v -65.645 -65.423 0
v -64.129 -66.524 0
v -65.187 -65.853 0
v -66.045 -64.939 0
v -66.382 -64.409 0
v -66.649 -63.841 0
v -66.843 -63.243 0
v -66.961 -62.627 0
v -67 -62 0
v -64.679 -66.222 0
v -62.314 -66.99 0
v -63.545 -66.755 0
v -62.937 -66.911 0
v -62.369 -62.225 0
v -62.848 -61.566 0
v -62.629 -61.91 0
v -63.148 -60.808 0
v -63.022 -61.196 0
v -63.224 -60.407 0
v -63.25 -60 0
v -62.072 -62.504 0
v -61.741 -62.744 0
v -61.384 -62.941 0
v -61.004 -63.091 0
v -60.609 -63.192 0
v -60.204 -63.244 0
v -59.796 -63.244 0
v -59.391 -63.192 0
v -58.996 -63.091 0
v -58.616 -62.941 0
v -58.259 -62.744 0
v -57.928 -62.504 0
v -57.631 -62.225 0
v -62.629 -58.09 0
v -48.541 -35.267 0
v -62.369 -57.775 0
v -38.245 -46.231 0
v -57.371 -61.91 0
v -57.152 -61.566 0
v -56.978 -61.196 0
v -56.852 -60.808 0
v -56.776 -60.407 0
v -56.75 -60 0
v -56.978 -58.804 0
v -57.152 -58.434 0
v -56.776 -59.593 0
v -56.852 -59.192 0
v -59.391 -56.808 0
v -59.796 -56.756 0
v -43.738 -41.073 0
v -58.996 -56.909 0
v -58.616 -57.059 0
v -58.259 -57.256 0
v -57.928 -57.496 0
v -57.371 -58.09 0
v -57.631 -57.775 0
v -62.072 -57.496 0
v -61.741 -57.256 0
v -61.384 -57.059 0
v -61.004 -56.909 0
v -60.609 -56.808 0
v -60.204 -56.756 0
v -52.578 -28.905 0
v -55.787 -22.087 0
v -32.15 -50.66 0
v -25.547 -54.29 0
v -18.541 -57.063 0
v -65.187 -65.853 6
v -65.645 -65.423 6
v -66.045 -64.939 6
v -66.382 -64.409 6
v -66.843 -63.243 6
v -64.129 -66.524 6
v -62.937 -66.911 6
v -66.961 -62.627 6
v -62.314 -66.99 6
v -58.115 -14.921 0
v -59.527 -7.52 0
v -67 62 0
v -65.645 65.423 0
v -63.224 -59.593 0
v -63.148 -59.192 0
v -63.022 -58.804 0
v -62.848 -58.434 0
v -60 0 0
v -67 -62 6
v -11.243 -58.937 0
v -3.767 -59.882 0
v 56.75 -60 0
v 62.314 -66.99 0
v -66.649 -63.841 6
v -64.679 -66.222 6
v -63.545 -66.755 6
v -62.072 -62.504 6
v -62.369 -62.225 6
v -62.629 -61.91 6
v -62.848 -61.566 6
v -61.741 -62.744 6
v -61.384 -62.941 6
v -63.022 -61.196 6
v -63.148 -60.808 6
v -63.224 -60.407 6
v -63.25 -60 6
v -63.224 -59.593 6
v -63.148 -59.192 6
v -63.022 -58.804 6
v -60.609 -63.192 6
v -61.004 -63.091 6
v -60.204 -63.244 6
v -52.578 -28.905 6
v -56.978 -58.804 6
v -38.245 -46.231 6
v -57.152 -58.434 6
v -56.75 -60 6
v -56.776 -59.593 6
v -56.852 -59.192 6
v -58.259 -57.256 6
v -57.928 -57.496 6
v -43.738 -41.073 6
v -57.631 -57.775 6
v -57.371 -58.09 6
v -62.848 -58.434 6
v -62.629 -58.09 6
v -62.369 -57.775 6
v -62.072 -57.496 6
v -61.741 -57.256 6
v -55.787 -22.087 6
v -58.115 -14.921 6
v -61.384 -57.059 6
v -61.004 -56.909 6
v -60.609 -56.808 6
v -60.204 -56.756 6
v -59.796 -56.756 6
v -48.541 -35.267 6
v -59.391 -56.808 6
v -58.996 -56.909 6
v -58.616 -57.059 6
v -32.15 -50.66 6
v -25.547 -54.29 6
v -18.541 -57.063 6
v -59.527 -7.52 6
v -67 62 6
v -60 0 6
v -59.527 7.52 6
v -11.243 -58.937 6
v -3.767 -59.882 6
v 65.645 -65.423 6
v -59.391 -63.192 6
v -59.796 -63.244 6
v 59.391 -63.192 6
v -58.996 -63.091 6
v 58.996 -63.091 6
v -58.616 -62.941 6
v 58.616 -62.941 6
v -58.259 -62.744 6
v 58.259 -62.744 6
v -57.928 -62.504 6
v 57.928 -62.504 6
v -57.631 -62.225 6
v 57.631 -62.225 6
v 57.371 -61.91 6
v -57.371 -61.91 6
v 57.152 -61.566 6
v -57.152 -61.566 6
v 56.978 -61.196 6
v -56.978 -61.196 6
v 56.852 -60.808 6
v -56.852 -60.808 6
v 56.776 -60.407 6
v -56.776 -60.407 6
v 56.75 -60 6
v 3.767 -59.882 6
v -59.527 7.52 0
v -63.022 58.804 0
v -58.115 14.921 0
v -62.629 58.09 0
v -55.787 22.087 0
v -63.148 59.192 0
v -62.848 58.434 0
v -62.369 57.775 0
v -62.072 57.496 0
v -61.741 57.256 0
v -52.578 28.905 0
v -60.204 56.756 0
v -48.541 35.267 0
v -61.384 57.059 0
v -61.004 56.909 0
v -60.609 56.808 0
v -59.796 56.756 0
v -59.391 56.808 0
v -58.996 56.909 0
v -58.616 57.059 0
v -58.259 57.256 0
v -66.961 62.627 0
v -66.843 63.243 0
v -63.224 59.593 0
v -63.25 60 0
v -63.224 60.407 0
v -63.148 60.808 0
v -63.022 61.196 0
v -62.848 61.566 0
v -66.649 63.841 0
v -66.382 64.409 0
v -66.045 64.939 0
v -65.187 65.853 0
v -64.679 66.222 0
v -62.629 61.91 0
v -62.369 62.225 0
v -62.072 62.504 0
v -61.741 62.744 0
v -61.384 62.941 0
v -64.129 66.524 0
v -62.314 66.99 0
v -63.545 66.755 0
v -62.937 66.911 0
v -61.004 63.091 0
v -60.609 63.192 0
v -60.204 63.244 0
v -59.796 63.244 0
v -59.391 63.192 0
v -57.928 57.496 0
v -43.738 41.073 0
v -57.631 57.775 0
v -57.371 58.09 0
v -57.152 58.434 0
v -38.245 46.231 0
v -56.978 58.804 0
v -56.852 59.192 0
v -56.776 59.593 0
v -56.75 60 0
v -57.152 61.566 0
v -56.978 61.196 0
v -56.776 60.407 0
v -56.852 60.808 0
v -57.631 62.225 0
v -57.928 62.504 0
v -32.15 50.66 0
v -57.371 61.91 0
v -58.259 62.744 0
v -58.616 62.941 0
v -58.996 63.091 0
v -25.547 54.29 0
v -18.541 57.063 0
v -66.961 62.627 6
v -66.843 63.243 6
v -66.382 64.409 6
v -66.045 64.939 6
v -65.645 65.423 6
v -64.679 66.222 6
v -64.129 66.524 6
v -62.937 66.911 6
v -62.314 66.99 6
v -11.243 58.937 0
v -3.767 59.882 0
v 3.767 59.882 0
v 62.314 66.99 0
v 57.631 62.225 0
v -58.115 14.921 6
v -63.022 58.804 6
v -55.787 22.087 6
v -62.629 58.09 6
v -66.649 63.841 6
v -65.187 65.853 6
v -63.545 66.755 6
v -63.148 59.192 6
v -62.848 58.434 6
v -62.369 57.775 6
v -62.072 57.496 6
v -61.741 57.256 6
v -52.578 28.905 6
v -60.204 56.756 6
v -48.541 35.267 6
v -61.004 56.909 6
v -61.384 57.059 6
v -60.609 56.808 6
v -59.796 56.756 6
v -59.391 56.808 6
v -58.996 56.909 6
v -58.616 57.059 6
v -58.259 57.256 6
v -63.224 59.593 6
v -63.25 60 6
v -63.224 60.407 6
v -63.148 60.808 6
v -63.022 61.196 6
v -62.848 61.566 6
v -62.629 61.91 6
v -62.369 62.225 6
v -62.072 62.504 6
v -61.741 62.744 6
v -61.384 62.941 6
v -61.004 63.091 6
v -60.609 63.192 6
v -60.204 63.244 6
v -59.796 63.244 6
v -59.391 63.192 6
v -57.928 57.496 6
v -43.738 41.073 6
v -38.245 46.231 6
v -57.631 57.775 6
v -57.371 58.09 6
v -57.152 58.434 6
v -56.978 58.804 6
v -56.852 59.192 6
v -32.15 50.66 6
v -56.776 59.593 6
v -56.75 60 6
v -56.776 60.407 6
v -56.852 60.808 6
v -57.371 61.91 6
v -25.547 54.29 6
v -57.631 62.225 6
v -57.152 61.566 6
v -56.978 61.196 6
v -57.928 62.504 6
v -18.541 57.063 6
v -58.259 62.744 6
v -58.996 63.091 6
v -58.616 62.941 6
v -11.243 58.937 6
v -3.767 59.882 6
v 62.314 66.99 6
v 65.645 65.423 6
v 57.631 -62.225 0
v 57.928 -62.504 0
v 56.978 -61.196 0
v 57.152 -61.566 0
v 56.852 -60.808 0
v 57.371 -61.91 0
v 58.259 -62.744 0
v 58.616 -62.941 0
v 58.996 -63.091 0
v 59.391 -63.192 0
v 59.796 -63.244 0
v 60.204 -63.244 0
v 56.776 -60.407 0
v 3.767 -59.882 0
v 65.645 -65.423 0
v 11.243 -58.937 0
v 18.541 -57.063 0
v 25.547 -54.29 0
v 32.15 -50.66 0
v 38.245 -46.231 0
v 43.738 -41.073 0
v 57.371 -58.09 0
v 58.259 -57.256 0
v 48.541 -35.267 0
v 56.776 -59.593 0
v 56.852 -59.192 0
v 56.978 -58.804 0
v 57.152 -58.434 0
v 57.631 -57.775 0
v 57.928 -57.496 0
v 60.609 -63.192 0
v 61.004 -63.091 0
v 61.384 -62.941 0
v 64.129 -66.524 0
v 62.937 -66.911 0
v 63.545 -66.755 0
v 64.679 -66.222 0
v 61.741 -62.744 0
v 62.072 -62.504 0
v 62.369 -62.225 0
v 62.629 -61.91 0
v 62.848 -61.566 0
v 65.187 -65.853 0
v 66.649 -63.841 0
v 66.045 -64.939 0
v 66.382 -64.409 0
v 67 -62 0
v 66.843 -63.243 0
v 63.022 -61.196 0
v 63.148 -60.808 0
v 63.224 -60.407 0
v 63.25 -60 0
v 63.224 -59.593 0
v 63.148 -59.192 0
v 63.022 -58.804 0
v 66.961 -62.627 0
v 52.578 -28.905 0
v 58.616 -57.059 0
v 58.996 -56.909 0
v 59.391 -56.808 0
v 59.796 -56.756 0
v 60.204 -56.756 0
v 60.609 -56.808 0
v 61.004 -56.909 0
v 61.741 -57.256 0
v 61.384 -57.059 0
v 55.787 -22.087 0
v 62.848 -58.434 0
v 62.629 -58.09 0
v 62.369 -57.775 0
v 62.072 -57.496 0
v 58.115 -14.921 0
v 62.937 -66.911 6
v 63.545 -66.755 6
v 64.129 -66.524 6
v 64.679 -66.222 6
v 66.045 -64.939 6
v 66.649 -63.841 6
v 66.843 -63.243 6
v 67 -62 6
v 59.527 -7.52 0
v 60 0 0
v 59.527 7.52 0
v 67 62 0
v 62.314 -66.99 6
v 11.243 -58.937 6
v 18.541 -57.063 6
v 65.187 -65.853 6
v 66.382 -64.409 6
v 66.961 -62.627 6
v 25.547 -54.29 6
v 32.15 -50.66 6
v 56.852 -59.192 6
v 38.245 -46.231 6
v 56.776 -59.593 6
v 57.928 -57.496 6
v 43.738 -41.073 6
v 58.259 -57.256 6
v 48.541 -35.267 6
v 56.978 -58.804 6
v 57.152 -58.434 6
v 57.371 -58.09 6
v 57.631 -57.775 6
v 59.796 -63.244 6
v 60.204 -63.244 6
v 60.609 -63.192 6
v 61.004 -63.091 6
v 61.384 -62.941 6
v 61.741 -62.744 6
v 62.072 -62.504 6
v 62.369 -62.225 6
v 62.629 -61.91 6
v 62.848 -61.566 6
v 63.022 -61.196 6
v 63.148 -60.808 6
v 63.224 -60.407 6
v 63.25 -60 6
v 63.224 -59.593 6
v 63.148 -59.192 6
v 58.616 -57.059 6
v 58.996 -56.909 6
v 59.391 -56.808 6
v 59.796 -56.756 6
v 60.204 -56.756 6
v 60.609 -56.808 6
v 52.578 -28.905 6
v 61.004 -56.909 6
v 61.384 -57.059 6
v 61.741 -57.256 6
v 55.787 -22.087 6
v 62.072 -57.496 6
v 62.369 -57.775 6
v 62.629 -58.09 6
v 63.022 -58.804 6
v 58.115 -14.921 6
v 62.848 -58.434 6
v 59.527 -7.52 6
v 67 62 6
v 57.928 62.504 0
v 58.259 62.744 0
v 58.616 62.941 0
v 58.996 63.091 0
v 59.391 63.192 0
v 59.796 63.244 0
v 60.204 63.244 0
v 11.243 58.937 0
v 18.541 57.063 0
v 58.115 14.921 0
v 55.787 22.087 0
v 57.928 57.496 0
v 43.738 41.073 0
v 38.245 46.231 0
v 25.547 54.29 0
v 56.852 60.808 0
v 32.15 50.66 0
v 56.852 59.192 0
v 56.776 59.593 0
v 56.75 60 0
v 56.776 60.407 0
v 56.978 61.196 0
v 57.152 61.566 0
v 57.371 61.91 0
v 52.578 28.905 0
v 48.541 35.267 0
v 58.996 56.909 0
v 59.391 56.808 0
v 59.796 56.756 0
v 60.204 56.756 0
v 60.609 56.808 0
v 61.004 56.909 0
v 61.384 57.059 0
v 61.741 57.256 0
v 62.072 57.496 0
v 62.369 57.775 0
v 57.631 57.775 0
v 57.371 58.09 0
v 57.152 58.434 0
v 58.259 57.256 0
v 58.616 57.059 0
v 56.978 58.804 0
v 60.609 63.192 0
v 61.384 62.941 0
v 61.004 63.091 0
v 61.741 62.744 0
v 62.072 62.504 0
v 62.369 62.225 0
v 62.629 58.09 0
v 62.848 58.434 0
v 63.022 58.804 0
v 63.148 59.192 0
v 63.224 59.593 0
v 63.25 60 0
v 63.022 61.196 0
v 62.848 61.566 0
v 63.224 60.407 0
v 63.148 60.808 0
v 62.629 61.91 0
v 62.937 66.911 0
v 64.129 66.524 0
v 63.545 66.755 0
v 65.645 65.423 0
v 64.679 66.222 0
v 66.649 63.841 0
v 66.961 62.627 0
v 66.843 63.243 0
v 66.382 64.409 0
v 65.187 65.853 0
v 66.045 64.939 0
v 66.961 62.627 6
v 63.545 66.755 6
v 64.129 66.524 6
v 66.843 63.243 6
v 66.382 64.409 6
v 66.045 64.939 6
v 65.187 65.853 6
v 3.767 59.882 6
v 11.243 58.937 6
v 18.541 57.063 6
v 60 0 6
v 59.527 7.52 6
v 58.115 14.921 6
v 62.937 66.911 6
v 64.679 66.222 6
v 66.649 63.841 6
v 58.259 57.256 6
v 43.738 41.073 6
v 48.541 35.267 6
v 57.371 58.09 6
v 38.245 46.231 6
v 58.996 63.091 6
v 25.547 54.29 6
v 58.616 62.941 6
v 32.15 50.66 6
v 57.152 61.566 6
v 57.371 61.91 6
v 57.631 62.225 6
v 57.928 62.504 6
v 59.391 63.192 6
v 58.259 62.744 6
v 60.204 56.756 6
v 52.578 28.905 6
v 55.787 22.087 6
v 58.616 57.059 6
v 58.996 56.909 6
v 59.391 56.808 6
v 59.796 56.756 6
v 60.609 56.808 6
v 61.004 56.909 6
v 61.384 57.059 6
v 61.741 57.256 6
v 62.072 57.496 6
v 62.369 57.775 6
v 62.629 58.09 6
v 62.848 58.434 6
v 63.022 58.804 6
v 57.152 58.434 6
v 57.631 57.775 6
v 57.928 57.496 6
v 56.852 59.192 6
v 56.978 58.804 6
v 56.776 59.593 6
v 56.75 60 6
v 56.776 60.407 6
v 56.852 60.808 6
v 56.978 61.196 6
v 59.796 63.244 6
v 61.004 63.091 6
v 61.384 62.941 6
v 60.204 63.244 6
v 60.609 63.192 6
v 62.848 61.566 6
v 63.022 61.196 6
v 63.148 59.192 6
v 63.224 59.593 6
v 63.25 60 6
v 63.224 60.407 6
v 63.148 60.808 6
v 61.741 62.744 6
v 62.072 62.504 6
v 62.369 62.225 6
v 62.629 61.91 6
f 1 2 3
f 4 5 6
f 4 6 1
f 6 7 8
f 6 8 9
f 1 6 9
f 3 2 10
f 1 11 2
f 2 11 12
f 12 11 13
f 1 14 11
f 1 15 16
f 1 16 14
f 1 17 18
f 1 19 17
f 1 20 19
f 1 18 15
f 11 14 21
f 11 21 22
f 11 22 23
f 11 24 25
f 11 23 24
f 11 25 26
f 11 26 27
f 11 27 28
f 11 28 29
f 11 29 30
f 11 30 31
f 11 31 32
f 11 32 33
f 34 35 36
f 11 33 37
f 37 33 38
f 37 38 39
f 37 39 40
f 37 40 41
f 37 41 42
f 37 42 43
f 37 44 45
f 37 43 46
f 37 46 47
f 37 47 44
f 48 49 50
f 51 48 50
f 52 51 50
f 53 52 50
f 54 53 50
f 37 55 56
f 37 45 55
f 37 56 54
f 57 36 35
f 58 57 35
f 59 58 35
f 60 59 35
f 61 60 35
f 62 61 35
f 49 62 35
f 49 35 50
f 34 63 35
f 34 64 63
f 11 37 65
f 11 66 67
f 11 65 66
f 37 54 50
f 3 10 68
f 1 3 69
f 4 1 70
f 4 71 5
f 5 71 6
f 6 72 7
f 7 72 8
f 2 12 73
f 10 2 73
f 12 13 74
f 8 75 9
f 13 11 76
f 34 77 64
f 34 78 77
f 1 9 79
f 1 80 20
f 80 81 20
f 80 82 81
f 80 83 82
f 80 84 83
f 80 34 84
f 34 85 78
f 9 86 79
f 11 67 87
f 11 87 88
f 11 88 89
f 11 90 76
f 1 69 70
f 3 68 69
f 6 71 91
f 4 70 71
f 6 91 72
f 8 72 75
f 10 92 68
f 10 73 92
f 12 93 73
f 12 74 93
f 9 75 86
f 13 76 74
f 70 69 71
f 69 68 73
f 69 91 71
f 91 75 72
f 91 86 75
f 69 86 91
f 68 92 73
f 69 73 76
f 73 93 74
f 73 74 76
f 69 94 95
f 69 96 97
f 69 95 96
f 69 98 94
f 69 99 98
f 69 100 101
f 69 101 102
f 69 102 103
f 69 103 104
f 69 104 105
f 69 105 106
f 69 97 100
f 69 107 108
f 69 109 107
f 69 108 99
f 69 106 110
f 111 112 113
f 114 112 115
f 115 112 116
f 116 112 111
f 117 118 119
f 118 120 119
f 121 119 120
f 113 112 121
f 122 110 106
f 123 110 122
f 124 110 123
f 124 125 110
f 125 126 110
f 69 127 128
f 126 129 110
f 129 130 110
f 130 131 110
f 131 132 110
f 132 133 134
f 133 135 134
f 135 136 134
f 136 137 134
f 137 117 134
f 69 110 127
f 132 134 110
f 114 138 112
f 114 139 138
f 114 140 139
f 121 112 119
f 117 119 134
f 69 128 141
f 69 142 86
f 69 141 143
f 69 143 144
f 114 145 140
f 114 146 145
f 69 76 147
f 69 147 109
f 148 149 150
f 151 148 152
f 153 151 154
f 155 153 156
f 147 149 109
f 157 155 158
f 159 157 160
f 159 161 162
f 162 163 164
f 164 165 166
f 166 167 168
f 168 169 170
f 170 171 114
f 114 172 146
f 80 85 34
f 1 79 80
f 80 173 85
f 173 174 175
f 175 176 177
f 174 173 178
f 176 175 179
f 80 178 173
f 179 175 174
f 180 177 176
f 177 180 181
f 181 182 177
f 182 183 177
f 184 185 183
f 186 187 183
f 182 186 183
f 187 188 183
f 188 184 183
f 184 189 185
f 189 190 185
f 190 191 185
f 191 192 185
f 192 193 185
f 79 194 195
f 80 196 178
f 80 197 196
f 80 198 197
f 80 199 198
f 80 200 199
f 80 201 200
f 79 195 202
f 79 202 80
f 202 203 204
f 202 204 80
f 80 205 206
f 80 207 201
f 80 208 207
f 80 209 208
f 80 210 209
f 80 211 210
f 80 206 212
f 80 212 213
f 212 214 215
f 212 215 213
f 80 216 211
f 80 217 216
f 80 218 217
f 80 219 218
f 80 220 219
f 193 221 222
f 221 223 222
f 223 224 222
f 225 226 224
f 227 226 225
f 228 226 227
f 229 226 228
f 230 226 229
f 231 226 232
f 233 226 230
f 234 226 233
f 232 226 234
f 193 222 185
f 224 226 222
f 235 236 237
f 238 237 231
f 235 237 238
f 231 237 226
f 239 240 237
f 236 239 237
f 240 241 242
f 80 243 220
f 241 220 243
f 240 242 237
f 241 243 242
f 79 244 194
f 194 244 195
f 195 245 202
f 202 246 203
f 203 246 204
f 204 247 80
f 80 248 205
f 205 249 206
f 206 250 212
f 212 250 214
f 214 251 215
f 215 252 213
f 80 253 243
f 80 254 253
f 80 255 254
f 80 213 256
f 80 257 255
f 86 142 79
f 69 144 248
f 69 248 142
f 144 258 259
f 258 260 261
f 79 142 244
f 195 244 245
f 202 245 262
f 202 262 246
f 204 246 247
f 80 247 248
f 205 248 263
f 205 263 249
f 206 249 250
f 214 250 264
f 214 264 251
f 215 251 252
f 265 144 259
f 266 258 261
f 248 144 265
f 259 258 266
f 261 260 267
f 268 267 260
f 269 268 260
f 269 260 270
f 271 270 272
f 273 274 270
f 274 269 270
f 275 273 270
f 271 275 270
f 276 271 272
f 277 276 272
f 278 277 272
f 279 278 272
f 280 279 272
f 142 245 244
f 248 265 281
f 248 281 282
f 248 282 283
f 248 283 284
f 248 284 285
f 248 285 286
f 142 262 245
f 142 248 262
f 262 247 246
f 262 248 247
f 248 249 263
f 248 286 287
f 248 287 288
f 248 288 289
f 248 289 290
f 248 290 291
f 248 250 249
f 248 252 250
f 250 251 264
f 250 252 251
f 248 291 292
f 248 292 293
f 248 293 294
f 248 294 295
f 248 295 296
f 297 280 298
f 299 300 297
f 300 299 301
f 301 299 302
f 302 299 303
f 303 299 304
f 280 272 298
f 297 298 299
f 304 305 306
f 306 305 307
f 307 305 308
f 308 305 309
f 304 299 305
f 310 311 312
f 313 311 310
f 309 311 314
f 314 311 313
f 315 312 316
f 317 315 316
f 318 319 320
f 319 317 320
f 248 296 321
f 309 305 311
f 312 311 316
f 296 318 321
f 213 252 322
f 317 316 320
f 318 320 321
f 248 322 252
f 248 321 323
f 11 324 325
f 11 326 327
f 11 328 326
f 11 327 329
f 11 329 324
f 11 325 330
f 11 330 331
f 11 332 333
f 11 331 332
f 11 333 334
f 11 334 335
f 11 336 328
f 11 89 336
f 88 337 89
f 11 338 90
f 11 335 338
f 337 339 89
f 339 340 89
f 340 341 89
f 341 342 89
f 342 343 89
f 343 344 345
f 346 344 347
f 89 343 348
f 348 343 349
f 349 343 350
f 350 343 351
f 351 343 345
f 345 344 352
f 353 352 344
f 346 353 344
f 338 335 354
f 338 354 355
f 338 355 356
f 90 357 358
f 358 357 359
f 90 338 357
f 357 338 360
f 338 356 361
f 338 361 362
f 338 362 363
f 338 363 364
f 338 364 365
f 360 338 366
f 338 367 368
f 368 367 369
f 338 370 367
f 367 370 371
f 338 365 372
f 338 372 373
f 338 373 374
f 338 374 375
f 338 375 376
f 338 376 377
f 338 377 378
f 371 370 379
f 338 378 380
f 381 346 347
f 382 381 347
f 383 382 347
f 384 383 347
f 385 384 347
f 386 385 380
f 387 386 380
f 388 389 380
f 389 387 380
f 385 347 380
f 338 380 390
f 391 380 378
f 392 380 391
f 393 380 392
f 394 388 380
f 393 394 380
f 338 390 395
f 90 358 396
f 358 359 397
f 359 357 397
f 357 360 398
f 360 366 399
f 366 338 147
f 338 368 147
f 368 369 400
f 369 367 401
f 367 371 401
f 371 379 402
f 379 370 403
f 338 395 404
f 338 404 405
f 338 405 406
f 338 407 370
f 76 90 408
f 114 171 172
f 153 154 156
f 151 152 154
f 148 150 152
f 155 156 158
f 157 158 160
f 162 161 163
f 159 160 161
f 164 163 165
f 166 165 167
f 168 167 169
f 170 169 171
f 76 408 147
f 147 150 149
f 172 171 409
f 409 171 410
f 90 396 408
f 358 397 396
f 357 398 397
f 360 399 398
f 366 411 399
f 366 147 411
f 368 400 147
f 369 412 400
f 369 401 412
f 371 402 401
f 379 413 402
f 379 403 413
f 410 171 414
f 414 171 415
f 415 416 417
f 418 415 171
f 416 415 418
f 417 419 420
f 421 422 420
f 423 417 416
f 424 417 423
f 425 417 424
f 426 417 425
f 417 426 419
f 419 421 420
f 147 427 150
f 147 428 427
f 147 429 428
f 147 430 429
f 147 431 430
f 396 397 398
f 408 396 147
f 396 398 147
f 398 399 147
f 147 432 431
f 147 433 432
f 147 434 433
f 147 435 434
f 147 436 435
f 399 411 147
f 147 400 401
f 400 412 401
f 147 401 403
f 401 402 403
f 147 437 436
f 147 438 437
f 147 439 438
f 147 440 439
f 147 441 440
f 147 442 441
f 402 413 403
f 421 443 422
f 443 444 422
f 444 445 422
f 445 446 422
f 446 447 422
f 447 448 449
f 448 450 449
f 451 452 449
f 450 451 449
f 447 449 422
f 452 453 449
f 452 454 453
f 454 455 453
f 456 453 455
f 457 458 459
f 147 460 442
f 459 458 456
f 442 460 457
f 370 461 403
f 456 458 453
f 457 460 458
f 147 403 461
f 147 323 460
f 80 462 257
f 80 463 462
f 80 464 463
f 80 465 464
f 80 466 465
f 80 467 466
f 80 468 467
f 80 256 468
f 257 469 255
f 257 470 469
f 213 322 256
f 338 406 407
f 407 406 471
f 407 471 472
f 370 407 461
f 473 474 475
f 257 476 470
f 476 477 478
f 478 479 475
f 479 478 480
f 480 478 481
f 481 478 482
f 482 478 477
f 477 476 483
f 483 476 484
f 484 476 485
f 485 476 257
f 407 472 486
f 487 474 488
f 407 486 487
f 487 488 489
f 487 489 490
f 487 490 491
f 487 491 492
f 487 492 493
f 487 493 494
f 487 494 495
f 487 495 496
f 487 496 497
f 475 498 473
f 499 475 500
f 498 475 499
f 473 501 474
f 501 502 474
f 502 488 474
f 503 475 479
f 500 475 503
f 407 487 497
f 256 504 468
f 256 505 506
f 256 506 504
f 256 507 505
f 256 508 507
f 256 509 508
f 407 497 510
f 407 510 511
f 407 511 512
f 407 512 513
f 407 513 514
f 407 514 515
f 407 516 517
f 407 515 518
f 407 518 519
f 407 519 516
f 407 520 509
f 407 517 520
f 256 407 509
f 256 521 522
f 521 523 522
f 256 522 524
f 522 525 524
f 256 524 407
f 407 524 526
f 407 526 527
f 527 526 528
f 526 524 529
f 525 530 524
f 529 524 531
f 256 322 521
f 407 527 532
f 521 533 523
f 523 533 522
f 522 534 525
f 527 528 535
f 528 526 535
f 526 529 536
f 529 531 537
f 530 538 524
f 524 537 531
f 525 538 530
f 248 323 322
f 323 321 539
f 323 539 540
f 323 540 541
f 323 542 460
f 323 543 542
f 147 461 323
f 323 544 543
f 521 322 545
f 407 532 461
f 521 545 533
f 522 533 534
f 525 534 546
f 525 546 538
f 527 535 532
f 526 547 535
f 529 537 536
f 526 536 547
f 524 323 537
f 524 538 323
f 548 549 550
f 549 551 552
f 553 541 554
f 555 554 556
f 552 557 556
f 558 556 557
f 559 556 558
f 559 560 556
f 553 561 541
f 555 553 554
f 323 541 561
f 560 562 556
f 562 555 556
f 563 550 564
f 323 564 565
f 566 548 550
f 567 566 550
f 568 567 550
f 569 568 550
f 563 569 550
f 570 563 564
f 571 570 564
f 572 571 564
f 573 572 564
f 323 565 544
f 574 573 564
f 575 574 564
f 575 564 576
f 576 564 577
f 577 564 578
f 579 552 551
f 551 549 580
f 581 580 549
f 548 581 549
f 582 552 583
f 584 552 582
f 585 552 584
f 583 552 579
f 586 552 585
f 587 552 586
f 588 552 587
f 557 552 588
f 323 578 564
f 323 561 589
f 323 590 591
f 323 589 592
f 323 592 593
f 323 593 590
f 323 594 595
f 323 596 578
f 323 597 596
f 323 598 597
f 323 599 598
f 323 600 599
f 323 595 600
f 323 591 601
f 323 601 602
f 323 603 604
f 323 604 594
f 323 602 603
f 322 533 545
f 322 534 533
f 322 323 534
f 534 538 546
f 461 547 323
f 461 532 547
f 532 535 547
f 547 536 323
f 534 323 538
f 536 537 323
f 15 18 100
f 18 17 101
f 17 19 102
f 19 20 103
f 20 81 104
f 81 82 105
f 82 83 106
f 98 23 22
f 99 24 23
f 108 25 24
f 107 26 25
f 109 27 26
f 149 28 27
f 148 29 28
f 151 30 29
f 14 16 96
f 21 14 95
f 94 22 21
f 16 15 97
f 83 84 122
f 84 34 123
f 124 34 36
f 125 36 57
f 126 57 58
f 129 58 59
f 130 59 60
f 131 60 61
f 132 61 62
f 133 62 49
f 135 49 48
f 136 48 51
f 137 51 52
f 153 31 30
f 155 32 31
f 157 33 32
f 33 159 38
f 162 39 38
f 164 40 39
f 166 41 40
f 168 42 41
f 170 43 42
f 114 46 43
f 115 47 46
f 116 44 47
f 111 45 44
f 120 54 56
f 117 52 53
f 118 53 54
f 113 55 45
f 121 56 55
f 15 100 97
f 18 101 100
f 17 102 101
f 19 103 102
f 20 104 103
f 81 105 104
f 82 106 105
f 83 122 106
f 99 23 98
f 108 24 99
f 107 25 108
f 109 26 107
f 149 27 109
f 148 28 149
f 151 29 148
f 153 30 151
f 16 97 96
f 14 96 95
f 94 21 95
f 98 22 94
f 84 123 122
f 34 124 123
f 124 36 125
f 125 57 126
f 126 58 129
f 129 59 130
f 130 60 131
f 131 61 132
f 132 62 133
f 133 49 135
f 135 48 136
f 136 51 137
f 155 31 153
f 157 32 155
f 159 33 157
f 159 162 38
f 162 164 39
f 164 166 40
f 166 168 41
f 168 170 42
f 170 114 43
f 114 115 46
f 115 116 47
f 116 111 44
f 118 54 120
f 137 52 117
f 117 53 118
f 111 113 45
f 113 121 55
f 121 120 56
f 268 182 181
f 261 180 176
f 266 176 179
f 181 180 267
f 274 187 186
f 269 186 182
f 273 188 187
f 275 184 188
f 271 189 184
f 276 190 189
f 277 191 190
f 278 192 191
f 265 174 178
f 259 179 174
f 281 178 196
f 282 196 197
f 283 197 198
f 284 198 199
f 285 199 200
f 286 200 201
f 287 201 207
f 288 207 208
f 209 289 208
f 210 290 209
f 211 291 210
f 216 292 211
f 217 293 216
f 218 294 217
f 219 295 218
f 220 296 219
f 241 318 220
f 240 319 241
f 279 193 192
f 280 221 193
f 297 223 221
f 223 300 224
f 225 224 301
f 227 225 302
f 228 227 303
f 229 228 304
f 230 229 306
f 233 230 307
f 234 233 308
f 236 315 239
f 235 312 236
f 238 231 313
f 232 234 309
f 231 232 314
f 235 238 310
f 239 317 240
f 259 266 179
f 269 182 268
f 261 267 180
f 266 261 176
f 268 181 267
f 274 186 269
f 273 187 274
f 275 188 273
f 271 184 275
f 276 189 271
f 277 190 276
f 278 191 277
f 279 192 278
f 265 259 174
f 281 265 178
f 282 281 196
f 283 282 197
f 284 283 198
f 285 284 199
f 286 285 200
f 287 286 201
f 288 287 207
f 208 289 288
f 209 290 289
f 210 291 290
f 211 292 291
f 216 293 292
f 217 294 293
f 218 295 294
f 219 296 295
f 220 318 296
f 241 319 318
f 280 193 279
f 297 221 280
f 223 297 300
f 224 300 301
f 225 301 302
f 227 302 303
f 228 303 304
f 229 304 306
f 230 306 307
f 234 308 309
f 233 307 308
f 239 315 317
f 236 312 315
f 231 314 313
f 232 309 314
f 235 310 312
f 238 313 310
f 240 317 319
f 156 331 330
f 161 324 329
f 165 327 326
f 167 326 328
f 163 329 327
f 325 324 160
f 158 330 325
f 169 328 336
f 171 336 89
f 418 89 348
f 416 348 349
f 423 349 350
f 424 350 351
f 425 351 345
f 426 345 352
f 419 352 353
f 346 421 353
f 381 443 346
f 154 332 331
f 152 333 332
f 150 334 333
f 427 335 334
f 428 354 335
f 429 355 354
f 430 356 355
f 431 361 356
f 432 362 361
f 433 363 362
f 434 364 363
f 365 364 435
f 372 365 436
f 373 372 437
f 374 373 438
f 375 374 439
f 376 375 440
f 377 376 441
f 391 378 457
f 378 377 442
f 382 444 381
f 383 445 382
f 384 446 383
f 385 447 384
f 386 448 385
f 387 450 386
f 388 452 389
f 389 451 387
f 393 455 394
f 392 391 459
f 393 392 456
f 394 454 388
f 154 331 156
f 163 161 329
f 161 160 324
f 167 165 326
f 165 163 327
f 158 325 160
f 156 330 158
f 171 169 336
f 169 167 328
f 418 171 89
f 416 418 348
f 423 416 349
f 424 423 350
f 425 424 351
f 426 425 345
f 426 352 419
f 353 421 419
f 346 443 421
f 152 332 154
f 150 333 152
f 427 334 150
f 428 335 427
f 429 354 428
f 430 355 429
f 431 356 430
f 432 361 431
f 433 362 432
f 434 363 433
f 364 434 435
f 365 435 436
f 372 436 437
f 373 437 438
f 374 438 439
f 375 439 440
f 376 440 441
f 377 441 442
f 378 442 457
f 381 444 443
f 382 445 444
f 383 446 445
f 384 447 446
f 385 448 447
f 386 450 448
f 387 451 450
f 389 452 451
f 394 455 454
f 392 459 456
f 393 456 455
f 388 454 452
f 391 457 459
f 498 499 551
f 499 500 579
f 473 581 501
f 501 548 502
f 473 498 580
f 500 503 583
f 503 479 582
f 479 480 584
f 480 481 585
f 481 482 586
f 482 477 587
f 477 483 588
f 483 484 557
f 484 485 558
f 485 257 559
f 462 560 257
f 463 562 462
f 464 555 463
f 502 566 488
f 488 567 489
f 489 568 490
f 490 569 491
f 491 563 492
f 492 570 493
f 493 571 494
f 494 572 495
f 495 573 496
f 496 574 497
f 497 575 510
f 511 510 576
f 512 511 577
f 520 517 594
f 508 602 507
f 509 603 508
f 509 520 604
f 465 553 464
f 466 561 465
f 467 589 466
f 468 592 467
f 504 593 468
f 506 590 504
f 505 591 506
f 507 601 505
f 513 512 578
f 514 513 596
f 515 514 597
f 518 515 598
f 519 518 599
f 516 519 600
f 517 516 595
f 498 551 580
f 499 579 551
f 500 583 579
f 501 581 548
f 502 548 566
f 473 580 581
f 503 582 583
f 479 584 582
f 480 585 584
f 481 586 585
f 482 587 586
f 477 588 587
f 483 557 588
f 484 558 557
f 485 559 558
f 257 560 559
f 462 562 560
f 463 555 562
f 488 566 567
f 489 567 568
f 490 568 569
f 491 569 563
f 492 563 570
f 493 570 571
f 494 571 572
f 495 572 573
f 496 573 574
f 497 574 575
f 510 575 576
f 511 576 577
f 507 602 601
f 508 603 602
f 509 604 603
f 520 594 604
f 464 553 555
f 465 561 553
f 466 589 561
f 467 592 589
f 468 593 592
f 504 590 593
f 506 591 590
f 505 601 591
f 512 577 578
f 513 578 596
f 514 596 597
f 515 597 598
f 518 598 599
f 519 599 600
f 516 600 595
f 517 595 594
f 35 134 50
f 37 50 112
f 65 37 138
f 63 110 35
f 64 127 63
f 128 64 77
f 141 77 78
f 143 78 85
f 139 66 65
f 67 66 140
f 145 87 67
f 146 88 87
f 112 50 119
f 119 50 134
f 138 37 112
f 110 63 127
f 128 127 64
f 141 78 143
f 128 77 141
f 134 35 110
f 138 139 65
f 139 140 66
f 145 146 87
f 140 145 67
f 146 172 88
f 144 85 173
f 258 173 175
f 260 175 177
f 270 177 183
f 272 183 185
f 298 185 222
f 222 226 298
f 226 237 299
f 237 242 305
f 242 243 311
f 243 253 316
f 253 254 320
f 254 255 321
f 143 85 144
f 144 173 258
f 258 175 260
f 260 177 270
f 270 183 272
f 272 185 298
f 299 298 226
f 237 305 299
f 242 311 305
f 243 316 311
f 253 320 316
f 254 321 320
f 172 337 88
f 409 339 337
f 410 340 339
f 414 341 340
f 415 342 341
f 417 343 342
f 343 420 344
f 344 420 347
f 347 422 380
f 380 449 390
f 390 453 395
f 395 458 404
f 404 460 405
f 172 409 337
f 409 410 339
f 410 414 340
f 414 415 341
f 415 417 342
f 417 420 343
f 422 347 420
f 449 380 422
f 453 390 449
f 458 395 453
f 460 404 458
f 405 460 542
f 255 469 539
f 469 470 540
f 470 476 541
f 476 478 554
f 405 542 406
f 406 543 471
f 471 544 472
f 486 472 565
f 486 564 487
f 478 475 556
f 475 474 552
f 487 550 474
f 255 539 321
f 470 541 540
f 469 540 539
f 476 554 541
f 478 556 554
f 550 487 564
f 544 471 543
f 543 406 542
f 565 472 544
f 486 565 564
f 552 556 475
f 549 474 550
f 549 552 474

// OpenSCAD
$fn = 50;

difference() {
	union() {
		hull() {
			translate(v = [-62.0, 62.0, 0]) {
				cylinder(h = 6, r = 5);
			}
			translate(v = [62.0, 62.0, 0]) {
				cylinder(h = 6, r = 5);
			}
			translate(v = [-62.0, -62.0, 0]) {
				cylinder(h = 6, r = 5);
			}
			translate(v = [62.0, -62.0, 0]) {
				cylinder(h = 6, r = 5);
			}
		}
	}
	union() {
		translate(v = [-60.0, -60.0, -100.0]) {
			cylinder(h = 200, r = 3.25);
		}
		translate(v = [-60.0, 60.0, -100.0]) {
			cylinder(h = 200, r = 3.25);
		}
		translate(v = [60.0, -60.0, -100.0]) {
			cylinder(h = 200, r = 3.25);
		}
		translate(v = [60.0, 60.0, -100.0]) {
			cylinder(h = 200, r = 3.25);
		}
		translate(v = [-60.0, -60.0, -100.0]) {
			cylinder(h = 200, r = 1.8);
		}
		translate(v = [-60.0, 60.0, -100.0]) {
			cylinder(h = 200, r = 1.8);
		}
		translate(v = [60.0, -60.0, -100.0]) {
			cylinder(h = 200, r = 1.8);
		}
		translate(v = [60.0, 60.0, -100.0]) {
			cylinder(h = 200, r = 1.8);
		}
		cylinder(h = 6, r = 60.0);
	}
}
